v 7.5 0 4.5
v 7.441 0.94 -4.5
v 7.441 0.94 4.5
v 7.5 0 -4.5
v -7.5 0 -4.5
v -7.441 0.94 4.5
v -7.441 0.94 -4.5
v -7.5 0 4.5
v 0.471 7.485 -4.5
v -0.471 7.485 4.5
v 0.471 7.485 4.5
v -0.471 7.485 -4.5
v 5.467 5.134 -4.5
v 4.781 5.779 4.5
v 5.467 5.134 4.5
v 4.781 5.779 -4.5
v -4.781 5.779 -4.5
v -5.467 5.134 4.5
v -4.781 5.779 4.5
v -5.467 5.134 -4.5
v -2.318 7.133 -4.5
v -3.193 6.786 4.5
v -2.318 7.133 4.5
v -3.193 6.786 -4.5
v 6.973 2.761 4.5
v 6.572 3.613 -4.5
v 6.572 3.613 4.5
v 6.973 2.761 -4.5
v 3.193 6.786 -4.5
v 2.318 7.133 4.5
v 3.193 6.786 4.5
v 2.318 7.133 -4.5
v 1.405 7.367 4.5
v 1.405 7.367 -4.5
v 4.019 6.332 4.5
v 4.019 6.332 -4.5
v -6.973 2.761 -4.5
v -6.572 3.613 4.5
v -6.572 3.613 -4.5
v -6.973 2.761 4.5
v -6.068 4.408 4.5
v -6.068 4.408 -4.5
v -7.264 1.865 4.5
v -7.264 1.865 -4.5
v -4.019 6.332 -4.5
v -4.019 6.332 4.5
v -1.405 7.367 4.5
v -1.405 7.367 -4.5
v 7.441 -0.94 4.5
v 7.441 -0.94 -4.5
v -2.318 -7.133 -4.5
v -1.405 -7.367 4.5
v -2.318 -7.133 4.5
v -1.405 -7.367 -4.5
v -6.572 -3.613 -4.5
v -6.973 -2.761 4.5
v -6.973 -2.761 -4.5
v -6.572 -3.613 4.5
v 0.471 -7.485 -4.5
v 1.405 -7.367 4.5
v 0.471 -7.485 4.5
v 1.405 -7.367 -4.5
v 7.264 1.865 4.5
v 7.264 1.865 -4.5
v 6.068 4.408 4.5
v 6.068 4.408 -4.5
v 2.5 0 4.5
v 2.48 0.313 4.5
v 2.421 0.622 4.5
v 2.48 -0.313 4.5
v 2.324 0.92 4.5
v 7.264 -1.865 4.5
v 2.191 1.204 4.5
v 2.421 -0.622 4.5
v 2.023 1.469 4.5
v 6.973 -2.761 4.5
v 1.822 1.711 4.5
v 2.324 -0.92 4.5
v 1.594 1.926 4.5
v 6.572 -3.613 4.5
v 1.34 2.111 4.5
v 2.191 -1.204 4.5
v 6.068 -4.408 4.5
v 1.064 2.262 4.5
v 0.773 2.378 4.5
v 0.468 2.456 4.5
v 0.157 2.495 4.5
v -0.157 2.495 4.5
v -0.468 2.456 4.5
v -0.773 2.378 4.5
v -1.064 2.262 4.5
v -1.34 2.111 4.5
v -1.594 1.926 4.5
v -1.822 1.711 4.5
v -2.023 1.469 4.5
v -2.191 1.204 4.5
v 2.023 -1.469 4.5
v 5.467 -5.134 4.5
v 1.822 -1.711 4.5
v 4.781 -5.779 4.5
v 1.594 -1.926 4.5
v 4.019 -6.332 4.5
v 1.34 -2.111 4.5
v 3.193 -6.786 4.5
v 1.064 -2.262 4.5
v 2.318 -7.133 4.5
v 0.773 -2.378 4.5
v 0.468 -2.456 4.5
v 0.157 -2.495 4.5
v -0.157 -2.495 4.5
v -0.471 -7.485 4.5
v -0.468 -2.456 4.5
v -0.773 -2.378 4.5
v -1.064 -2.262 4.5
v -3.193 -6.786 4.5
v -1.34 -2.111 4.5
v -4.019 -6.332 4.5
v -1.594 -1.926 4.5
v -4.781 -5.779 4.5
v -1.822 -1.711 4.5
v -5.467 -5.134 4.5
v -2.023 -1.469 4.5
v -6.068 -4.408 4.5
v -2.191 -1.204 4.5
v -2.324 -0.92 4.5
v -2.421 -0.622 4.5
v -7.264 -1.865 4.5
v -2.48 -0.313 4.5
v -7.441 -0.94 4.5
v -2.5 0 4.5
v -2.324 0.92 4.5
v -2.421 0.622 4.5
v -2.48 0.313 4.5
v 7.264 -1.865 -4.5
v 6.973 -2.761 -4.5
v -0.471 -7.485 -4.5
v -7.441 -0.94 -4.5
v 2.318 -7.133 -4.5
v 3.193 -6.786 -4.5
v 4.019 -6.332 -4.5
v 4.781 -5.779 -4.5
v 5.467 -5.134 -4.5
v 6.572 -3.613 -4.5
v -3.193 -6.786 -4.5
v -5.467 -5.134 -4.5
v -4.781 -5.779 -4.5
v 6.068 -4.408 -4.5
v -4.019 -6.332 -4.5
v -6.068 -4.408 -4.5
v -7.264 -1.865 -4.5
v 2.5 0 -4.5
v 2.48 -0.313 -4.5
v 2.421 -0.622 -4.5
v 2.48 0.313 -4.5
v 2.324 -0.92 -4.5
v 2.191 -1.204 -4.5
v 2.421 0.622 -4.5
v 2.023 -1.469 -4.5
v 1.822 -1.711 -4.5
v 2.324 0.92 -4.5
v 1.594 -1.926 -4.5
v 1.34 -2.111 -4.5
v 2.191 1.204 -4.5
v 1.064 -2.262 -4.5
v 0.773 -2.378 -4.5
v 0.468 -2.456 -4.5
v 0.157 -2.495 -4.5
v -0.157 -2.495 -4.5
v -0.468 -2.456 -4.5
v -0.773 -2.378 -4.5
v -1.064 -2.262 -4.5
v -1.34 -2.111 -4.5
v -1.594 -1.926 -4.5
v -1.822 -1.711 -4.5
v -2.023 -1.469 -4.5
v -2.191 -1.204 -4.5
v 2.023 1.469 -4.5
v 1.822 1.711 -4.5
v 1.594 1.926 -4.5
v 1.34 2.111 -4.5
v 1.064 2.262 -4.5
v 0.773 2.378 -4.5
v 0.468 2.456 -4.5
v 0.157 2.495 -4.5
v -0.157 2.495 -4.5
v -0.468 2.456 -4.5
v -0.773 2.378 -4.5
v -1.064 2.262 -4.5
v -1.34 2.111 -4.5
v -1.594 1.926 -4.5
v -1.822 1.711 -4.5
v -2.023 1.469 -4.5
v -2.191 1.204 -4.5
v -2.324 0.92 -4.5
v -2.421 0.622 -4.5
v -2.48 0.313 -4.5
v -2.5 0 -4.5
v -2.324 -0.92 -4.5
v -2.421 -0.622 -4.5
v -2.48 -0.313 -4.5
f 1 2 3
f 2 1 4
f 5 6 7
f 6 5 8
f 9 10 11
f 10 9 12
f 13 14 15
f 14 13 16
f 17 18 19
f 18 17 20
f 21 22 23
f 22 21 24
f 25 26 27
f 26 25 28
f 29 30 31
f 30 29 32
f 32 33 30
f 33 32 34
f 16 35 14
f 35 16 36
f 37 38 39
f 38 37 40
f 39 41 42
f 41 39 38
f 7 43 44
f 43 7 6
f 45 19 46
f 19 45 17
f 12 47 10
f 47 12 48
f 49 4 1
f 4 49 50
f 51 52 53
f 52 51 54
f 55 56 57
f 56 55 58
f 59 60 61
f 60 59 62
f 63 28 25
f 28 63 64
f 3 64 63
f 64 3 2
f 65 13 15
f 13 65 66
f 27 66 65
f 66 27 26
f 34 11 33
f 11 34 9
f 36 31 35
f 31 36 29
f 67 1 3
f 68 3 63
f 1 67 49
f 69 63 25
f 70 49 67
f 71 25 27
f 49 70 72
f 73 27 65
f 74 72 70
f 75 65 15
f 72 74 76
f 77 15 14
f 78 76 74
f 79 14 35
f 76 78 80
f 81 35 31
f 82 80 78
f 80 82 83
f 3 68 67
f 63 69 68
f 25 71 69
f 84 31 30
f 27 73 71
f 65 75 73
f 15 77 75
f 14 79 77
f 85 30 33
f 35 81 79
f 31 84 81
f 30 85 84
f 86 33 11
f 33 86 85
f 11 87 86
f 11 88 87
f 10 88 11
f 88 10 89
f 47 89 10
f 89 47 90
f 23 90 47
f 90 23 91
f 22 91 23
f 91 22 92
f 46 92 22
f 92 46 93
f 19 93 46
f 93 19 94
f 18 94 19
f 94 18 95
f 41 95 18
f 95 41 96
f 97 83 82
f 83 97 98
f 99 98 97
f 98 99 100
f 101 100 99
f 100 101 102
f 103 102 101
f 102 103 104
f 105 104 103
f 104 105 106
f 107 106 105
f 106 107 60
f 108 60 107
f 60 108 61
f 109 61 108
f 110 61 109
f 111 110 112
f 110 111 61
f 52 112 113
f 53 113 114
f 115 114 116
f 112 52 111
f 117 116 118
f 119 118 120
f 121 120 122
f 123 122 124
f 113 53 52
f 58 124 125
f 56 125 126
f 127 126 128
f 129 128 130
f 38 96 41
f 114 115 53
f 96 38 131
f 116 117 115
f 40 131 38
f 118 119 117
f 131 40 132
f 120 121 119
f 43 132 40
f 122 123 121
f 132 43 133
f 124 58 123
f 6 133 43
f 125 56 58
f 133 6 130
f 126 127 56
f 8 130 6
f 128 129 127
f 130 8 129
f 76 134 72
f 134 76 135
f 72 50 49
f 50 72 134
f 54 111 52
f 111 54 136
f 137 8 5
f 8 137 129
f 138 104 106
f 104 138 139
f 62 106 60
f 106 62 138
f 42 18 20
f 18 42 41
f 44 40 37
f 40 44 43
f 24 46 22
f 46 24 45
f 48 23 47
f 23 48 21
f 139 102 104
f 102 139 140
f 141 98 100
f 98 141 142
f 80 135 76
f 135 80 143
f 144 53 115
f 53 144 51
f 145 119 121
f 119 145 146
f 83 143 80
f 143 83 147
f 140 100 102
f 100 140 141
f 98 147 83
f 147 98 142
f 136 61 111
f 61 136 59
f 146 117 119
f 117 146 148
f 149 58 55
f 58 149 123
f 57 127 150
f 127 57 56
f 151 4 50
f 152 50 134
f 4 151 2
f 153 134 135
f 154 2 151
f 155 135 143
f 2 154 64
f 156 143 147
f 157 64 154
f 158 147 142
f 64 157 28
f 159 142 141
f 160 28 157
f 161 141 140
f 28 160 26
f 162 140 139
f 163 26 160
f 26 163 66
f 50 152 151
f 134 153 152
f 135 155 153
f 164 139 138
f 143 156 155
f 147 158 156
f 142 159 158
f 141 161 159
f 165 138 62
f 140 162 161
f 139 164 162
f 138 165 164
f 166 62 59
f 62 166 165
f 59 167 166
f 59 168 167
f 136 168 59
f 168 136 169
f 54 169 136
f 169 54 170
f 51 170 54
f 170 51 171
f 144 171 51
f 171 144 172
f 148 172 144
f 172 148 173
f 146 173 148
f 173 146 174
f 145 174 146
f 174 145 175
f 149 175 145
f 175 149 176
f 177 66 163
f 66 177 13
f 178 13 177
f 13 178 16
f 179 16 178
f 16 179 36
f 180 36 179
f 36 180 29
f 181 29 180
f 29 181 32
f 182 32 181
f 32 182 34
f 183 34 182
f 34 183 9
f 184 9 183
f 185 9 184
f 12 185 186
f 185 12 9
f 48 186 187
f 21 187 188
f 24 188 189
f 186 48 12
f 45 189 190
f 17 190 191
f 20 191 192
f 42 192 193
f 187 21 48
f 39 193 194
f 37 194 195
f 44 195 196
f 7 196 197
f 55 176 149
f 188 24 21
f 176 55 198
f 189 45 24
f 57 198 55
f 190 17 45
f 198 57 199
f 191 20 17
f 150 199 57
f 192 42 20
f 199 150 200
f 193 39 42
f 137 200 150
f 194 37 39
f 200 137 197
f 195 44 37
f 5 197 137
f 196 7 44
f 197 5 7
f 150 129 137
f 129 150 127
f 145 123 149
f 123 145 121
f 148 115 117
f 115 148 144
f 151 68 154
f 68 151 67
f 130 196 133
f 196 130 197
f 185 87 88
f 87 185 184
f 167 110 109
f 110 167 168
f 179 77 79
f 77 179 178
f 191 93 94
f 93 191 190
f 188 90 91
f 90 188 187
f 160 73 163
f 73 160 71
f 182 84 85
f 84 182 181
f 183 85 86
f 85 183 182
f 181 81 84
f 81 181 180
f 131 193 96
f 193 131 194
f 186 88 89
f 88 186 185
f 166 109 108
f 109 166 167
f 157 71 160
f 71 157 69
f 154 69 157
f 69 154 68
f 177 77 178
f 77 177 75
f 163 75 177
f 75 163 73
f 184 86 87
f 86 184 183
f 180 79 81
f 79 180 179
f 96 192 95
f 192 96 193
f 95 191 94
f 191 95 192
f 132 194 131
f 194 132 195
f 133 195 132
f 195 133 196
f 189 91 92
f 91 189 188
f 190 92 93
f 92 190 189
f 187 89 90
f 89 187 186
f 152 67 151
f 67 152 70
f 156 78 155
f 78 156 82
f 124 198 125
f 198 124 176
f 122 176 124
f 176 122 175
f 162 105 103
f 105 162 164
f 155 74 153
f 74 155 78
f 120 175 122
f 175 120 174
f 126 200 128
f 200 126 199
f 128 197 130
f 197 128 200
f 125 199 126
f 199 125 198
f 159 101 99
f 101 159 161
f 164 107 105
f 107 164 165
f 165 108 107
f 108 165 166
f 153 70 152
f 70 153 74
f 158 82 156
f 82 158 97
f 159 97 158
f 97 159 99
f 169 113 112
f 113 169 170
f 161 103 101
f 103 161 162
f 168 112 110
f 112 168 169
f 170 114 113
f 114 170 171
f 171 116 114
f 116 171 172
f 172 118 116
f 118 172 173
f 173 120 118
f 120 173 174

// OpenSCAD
$fn = 50;


difference() {
	union() {
		translate(v = [0, 0, -4.5000000000]) {
			cylinder(h = 9, r = 7.5000000000);
		}
	}
	union() {
		translate(v = [0, 0, -100.0000000000]) {
			cylinder(h = 200, r = 2.5000000000);
		}
	}
}
